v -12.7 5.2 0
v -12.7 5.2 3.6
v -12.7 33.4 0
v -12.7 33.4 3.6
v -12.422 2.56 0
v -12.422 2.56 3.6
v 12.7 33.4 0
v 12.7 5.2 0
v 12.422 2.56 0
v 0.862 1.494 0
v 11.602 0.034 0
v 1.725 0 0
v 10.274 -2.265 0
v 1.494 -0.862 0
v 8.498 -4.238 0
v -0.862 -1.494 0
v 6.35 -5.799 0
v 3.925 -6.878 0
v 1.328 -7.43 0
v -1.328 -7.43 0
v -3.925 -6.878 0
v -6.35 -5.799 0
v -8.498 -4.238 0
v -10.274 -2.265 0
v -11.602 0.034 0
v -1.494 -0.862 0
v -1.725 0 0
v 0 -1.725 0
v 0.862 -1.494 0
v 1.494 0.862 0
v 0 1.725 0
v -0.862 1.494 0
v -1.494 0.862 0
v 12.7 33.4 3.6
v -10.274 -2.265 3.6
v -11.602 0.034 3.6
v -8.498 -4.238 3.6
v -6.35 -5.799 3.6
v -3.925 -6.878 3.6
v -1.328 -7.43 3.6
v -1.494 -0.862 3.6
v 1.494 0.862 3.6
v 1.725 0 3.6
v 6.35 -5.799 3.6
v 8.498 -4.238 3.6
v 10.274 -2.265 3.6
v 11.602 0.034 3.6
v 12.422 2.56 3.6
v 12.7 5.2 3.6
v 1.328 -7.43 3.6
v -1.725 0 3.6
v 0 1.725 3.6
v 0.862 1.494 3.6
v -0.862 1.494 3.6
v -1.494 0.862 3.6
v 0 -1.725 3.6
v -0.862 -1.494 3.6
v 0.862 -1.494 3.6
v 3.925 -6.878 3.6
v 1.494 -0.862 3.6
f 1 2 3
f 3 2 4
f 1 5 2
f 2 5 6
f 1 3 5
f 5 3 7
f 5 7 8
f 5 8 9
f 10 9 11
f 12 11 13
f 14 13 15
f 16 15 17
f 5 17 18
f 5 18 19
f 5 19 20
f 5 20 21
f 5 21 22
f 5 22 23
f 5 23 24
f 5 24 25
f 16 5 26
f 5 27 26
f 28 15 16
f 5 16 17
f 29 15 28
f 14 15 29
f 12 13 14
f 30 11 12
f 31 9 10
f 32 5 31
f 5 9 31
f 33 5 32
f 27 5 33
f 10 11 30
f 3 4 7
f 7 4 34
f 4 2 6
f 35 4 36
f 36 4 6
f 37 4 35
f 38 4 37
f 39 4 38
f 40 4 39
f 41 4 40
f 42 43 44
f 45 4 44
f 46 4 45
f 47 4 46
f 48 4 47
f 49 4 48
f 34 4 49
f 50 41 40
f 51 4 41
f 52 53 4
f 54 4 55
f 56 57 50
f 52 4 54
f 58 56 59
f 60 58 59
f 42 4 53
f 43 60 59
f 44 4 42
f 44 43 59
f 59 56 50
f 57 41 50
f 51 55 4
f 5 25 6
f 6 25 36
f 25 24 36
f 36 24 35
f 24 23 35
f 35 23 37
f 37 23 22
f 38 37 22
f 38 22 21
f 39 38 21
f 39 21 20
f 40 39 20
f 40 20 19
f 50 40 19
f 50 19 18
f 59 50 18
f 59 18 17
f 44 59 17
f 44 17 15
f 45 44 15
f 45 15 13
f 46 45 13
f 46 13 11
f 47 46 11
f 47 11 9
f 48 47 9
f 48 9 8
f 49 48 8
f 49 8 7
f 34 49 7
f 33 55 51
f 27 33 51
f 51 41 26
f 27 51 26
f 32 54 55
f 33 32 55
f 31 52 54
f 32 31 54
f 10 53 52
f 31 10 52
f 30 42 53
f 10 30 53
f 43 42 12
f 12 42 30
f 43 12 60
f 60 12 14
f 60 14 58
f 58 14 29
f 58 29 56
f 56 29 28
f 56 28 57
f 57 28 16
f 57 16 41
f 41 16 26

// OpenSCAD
// file: configuration.scad
// Increase this if your slicer or printer make holes too tight.
extra_radius = 0.1;

// OD = outside diameter, corner to corner.
m3_nut_od = 6.1;
m3_nut_radius = m3_nut_od/2 + 0.2 + extra_radius;

// Major diameter of metric 3mm thread.
m3_major = 2.85;
m3_radius = m3_major/2 + extra_radius;
m3_wide_radius = m3_major/2 + extra_radius + 0.2;

// NEMA17 stepper motors.
motor_shaft_diameter = 5;
motor_shaft_radius = motor_shaft_diameter/2 + extra_radius;

// Frame brackets.
thickness = 3.6;
// main file
include <configuration.scad>;

sticky_width = 25.4;
sticky_length = 25.4;
sticky_offset = 8;  // Distance from screw center to glass edge.

// Make the round edge line up with the outside of OpenBeam.
screw_offset = sticky_width/2 - 7.5;
cube_length = sticky_length + sticky_offset - screw_offset;

module glass_tab() {
  difference() {
    translate([0, screw_offset, 0]) union() {
      cylinder(r=sticky_width/2, h=thickness, center=true);
      translate([0, cube_length/2, 0])
        cube([sticky_width, cube_length, thickness], center=true);
    }
    cylinder(r=m3_wide_radius, h=20, center=true, $fn=12);
  }
  // Scotch restickable tab for mounting.
  translate([0, sticky_length/2+sticky_offset, thickness/2]) %
    cube([sticky_width, sticky_length, 0.7], center=true);
  // Horizontal OpenBeam.
  translate([0, 0, (15+thickness)/-2]) %
    cube([100, 15, 15], center=true);
}

translate([0, 0, thickness/2]) glass_tab();
